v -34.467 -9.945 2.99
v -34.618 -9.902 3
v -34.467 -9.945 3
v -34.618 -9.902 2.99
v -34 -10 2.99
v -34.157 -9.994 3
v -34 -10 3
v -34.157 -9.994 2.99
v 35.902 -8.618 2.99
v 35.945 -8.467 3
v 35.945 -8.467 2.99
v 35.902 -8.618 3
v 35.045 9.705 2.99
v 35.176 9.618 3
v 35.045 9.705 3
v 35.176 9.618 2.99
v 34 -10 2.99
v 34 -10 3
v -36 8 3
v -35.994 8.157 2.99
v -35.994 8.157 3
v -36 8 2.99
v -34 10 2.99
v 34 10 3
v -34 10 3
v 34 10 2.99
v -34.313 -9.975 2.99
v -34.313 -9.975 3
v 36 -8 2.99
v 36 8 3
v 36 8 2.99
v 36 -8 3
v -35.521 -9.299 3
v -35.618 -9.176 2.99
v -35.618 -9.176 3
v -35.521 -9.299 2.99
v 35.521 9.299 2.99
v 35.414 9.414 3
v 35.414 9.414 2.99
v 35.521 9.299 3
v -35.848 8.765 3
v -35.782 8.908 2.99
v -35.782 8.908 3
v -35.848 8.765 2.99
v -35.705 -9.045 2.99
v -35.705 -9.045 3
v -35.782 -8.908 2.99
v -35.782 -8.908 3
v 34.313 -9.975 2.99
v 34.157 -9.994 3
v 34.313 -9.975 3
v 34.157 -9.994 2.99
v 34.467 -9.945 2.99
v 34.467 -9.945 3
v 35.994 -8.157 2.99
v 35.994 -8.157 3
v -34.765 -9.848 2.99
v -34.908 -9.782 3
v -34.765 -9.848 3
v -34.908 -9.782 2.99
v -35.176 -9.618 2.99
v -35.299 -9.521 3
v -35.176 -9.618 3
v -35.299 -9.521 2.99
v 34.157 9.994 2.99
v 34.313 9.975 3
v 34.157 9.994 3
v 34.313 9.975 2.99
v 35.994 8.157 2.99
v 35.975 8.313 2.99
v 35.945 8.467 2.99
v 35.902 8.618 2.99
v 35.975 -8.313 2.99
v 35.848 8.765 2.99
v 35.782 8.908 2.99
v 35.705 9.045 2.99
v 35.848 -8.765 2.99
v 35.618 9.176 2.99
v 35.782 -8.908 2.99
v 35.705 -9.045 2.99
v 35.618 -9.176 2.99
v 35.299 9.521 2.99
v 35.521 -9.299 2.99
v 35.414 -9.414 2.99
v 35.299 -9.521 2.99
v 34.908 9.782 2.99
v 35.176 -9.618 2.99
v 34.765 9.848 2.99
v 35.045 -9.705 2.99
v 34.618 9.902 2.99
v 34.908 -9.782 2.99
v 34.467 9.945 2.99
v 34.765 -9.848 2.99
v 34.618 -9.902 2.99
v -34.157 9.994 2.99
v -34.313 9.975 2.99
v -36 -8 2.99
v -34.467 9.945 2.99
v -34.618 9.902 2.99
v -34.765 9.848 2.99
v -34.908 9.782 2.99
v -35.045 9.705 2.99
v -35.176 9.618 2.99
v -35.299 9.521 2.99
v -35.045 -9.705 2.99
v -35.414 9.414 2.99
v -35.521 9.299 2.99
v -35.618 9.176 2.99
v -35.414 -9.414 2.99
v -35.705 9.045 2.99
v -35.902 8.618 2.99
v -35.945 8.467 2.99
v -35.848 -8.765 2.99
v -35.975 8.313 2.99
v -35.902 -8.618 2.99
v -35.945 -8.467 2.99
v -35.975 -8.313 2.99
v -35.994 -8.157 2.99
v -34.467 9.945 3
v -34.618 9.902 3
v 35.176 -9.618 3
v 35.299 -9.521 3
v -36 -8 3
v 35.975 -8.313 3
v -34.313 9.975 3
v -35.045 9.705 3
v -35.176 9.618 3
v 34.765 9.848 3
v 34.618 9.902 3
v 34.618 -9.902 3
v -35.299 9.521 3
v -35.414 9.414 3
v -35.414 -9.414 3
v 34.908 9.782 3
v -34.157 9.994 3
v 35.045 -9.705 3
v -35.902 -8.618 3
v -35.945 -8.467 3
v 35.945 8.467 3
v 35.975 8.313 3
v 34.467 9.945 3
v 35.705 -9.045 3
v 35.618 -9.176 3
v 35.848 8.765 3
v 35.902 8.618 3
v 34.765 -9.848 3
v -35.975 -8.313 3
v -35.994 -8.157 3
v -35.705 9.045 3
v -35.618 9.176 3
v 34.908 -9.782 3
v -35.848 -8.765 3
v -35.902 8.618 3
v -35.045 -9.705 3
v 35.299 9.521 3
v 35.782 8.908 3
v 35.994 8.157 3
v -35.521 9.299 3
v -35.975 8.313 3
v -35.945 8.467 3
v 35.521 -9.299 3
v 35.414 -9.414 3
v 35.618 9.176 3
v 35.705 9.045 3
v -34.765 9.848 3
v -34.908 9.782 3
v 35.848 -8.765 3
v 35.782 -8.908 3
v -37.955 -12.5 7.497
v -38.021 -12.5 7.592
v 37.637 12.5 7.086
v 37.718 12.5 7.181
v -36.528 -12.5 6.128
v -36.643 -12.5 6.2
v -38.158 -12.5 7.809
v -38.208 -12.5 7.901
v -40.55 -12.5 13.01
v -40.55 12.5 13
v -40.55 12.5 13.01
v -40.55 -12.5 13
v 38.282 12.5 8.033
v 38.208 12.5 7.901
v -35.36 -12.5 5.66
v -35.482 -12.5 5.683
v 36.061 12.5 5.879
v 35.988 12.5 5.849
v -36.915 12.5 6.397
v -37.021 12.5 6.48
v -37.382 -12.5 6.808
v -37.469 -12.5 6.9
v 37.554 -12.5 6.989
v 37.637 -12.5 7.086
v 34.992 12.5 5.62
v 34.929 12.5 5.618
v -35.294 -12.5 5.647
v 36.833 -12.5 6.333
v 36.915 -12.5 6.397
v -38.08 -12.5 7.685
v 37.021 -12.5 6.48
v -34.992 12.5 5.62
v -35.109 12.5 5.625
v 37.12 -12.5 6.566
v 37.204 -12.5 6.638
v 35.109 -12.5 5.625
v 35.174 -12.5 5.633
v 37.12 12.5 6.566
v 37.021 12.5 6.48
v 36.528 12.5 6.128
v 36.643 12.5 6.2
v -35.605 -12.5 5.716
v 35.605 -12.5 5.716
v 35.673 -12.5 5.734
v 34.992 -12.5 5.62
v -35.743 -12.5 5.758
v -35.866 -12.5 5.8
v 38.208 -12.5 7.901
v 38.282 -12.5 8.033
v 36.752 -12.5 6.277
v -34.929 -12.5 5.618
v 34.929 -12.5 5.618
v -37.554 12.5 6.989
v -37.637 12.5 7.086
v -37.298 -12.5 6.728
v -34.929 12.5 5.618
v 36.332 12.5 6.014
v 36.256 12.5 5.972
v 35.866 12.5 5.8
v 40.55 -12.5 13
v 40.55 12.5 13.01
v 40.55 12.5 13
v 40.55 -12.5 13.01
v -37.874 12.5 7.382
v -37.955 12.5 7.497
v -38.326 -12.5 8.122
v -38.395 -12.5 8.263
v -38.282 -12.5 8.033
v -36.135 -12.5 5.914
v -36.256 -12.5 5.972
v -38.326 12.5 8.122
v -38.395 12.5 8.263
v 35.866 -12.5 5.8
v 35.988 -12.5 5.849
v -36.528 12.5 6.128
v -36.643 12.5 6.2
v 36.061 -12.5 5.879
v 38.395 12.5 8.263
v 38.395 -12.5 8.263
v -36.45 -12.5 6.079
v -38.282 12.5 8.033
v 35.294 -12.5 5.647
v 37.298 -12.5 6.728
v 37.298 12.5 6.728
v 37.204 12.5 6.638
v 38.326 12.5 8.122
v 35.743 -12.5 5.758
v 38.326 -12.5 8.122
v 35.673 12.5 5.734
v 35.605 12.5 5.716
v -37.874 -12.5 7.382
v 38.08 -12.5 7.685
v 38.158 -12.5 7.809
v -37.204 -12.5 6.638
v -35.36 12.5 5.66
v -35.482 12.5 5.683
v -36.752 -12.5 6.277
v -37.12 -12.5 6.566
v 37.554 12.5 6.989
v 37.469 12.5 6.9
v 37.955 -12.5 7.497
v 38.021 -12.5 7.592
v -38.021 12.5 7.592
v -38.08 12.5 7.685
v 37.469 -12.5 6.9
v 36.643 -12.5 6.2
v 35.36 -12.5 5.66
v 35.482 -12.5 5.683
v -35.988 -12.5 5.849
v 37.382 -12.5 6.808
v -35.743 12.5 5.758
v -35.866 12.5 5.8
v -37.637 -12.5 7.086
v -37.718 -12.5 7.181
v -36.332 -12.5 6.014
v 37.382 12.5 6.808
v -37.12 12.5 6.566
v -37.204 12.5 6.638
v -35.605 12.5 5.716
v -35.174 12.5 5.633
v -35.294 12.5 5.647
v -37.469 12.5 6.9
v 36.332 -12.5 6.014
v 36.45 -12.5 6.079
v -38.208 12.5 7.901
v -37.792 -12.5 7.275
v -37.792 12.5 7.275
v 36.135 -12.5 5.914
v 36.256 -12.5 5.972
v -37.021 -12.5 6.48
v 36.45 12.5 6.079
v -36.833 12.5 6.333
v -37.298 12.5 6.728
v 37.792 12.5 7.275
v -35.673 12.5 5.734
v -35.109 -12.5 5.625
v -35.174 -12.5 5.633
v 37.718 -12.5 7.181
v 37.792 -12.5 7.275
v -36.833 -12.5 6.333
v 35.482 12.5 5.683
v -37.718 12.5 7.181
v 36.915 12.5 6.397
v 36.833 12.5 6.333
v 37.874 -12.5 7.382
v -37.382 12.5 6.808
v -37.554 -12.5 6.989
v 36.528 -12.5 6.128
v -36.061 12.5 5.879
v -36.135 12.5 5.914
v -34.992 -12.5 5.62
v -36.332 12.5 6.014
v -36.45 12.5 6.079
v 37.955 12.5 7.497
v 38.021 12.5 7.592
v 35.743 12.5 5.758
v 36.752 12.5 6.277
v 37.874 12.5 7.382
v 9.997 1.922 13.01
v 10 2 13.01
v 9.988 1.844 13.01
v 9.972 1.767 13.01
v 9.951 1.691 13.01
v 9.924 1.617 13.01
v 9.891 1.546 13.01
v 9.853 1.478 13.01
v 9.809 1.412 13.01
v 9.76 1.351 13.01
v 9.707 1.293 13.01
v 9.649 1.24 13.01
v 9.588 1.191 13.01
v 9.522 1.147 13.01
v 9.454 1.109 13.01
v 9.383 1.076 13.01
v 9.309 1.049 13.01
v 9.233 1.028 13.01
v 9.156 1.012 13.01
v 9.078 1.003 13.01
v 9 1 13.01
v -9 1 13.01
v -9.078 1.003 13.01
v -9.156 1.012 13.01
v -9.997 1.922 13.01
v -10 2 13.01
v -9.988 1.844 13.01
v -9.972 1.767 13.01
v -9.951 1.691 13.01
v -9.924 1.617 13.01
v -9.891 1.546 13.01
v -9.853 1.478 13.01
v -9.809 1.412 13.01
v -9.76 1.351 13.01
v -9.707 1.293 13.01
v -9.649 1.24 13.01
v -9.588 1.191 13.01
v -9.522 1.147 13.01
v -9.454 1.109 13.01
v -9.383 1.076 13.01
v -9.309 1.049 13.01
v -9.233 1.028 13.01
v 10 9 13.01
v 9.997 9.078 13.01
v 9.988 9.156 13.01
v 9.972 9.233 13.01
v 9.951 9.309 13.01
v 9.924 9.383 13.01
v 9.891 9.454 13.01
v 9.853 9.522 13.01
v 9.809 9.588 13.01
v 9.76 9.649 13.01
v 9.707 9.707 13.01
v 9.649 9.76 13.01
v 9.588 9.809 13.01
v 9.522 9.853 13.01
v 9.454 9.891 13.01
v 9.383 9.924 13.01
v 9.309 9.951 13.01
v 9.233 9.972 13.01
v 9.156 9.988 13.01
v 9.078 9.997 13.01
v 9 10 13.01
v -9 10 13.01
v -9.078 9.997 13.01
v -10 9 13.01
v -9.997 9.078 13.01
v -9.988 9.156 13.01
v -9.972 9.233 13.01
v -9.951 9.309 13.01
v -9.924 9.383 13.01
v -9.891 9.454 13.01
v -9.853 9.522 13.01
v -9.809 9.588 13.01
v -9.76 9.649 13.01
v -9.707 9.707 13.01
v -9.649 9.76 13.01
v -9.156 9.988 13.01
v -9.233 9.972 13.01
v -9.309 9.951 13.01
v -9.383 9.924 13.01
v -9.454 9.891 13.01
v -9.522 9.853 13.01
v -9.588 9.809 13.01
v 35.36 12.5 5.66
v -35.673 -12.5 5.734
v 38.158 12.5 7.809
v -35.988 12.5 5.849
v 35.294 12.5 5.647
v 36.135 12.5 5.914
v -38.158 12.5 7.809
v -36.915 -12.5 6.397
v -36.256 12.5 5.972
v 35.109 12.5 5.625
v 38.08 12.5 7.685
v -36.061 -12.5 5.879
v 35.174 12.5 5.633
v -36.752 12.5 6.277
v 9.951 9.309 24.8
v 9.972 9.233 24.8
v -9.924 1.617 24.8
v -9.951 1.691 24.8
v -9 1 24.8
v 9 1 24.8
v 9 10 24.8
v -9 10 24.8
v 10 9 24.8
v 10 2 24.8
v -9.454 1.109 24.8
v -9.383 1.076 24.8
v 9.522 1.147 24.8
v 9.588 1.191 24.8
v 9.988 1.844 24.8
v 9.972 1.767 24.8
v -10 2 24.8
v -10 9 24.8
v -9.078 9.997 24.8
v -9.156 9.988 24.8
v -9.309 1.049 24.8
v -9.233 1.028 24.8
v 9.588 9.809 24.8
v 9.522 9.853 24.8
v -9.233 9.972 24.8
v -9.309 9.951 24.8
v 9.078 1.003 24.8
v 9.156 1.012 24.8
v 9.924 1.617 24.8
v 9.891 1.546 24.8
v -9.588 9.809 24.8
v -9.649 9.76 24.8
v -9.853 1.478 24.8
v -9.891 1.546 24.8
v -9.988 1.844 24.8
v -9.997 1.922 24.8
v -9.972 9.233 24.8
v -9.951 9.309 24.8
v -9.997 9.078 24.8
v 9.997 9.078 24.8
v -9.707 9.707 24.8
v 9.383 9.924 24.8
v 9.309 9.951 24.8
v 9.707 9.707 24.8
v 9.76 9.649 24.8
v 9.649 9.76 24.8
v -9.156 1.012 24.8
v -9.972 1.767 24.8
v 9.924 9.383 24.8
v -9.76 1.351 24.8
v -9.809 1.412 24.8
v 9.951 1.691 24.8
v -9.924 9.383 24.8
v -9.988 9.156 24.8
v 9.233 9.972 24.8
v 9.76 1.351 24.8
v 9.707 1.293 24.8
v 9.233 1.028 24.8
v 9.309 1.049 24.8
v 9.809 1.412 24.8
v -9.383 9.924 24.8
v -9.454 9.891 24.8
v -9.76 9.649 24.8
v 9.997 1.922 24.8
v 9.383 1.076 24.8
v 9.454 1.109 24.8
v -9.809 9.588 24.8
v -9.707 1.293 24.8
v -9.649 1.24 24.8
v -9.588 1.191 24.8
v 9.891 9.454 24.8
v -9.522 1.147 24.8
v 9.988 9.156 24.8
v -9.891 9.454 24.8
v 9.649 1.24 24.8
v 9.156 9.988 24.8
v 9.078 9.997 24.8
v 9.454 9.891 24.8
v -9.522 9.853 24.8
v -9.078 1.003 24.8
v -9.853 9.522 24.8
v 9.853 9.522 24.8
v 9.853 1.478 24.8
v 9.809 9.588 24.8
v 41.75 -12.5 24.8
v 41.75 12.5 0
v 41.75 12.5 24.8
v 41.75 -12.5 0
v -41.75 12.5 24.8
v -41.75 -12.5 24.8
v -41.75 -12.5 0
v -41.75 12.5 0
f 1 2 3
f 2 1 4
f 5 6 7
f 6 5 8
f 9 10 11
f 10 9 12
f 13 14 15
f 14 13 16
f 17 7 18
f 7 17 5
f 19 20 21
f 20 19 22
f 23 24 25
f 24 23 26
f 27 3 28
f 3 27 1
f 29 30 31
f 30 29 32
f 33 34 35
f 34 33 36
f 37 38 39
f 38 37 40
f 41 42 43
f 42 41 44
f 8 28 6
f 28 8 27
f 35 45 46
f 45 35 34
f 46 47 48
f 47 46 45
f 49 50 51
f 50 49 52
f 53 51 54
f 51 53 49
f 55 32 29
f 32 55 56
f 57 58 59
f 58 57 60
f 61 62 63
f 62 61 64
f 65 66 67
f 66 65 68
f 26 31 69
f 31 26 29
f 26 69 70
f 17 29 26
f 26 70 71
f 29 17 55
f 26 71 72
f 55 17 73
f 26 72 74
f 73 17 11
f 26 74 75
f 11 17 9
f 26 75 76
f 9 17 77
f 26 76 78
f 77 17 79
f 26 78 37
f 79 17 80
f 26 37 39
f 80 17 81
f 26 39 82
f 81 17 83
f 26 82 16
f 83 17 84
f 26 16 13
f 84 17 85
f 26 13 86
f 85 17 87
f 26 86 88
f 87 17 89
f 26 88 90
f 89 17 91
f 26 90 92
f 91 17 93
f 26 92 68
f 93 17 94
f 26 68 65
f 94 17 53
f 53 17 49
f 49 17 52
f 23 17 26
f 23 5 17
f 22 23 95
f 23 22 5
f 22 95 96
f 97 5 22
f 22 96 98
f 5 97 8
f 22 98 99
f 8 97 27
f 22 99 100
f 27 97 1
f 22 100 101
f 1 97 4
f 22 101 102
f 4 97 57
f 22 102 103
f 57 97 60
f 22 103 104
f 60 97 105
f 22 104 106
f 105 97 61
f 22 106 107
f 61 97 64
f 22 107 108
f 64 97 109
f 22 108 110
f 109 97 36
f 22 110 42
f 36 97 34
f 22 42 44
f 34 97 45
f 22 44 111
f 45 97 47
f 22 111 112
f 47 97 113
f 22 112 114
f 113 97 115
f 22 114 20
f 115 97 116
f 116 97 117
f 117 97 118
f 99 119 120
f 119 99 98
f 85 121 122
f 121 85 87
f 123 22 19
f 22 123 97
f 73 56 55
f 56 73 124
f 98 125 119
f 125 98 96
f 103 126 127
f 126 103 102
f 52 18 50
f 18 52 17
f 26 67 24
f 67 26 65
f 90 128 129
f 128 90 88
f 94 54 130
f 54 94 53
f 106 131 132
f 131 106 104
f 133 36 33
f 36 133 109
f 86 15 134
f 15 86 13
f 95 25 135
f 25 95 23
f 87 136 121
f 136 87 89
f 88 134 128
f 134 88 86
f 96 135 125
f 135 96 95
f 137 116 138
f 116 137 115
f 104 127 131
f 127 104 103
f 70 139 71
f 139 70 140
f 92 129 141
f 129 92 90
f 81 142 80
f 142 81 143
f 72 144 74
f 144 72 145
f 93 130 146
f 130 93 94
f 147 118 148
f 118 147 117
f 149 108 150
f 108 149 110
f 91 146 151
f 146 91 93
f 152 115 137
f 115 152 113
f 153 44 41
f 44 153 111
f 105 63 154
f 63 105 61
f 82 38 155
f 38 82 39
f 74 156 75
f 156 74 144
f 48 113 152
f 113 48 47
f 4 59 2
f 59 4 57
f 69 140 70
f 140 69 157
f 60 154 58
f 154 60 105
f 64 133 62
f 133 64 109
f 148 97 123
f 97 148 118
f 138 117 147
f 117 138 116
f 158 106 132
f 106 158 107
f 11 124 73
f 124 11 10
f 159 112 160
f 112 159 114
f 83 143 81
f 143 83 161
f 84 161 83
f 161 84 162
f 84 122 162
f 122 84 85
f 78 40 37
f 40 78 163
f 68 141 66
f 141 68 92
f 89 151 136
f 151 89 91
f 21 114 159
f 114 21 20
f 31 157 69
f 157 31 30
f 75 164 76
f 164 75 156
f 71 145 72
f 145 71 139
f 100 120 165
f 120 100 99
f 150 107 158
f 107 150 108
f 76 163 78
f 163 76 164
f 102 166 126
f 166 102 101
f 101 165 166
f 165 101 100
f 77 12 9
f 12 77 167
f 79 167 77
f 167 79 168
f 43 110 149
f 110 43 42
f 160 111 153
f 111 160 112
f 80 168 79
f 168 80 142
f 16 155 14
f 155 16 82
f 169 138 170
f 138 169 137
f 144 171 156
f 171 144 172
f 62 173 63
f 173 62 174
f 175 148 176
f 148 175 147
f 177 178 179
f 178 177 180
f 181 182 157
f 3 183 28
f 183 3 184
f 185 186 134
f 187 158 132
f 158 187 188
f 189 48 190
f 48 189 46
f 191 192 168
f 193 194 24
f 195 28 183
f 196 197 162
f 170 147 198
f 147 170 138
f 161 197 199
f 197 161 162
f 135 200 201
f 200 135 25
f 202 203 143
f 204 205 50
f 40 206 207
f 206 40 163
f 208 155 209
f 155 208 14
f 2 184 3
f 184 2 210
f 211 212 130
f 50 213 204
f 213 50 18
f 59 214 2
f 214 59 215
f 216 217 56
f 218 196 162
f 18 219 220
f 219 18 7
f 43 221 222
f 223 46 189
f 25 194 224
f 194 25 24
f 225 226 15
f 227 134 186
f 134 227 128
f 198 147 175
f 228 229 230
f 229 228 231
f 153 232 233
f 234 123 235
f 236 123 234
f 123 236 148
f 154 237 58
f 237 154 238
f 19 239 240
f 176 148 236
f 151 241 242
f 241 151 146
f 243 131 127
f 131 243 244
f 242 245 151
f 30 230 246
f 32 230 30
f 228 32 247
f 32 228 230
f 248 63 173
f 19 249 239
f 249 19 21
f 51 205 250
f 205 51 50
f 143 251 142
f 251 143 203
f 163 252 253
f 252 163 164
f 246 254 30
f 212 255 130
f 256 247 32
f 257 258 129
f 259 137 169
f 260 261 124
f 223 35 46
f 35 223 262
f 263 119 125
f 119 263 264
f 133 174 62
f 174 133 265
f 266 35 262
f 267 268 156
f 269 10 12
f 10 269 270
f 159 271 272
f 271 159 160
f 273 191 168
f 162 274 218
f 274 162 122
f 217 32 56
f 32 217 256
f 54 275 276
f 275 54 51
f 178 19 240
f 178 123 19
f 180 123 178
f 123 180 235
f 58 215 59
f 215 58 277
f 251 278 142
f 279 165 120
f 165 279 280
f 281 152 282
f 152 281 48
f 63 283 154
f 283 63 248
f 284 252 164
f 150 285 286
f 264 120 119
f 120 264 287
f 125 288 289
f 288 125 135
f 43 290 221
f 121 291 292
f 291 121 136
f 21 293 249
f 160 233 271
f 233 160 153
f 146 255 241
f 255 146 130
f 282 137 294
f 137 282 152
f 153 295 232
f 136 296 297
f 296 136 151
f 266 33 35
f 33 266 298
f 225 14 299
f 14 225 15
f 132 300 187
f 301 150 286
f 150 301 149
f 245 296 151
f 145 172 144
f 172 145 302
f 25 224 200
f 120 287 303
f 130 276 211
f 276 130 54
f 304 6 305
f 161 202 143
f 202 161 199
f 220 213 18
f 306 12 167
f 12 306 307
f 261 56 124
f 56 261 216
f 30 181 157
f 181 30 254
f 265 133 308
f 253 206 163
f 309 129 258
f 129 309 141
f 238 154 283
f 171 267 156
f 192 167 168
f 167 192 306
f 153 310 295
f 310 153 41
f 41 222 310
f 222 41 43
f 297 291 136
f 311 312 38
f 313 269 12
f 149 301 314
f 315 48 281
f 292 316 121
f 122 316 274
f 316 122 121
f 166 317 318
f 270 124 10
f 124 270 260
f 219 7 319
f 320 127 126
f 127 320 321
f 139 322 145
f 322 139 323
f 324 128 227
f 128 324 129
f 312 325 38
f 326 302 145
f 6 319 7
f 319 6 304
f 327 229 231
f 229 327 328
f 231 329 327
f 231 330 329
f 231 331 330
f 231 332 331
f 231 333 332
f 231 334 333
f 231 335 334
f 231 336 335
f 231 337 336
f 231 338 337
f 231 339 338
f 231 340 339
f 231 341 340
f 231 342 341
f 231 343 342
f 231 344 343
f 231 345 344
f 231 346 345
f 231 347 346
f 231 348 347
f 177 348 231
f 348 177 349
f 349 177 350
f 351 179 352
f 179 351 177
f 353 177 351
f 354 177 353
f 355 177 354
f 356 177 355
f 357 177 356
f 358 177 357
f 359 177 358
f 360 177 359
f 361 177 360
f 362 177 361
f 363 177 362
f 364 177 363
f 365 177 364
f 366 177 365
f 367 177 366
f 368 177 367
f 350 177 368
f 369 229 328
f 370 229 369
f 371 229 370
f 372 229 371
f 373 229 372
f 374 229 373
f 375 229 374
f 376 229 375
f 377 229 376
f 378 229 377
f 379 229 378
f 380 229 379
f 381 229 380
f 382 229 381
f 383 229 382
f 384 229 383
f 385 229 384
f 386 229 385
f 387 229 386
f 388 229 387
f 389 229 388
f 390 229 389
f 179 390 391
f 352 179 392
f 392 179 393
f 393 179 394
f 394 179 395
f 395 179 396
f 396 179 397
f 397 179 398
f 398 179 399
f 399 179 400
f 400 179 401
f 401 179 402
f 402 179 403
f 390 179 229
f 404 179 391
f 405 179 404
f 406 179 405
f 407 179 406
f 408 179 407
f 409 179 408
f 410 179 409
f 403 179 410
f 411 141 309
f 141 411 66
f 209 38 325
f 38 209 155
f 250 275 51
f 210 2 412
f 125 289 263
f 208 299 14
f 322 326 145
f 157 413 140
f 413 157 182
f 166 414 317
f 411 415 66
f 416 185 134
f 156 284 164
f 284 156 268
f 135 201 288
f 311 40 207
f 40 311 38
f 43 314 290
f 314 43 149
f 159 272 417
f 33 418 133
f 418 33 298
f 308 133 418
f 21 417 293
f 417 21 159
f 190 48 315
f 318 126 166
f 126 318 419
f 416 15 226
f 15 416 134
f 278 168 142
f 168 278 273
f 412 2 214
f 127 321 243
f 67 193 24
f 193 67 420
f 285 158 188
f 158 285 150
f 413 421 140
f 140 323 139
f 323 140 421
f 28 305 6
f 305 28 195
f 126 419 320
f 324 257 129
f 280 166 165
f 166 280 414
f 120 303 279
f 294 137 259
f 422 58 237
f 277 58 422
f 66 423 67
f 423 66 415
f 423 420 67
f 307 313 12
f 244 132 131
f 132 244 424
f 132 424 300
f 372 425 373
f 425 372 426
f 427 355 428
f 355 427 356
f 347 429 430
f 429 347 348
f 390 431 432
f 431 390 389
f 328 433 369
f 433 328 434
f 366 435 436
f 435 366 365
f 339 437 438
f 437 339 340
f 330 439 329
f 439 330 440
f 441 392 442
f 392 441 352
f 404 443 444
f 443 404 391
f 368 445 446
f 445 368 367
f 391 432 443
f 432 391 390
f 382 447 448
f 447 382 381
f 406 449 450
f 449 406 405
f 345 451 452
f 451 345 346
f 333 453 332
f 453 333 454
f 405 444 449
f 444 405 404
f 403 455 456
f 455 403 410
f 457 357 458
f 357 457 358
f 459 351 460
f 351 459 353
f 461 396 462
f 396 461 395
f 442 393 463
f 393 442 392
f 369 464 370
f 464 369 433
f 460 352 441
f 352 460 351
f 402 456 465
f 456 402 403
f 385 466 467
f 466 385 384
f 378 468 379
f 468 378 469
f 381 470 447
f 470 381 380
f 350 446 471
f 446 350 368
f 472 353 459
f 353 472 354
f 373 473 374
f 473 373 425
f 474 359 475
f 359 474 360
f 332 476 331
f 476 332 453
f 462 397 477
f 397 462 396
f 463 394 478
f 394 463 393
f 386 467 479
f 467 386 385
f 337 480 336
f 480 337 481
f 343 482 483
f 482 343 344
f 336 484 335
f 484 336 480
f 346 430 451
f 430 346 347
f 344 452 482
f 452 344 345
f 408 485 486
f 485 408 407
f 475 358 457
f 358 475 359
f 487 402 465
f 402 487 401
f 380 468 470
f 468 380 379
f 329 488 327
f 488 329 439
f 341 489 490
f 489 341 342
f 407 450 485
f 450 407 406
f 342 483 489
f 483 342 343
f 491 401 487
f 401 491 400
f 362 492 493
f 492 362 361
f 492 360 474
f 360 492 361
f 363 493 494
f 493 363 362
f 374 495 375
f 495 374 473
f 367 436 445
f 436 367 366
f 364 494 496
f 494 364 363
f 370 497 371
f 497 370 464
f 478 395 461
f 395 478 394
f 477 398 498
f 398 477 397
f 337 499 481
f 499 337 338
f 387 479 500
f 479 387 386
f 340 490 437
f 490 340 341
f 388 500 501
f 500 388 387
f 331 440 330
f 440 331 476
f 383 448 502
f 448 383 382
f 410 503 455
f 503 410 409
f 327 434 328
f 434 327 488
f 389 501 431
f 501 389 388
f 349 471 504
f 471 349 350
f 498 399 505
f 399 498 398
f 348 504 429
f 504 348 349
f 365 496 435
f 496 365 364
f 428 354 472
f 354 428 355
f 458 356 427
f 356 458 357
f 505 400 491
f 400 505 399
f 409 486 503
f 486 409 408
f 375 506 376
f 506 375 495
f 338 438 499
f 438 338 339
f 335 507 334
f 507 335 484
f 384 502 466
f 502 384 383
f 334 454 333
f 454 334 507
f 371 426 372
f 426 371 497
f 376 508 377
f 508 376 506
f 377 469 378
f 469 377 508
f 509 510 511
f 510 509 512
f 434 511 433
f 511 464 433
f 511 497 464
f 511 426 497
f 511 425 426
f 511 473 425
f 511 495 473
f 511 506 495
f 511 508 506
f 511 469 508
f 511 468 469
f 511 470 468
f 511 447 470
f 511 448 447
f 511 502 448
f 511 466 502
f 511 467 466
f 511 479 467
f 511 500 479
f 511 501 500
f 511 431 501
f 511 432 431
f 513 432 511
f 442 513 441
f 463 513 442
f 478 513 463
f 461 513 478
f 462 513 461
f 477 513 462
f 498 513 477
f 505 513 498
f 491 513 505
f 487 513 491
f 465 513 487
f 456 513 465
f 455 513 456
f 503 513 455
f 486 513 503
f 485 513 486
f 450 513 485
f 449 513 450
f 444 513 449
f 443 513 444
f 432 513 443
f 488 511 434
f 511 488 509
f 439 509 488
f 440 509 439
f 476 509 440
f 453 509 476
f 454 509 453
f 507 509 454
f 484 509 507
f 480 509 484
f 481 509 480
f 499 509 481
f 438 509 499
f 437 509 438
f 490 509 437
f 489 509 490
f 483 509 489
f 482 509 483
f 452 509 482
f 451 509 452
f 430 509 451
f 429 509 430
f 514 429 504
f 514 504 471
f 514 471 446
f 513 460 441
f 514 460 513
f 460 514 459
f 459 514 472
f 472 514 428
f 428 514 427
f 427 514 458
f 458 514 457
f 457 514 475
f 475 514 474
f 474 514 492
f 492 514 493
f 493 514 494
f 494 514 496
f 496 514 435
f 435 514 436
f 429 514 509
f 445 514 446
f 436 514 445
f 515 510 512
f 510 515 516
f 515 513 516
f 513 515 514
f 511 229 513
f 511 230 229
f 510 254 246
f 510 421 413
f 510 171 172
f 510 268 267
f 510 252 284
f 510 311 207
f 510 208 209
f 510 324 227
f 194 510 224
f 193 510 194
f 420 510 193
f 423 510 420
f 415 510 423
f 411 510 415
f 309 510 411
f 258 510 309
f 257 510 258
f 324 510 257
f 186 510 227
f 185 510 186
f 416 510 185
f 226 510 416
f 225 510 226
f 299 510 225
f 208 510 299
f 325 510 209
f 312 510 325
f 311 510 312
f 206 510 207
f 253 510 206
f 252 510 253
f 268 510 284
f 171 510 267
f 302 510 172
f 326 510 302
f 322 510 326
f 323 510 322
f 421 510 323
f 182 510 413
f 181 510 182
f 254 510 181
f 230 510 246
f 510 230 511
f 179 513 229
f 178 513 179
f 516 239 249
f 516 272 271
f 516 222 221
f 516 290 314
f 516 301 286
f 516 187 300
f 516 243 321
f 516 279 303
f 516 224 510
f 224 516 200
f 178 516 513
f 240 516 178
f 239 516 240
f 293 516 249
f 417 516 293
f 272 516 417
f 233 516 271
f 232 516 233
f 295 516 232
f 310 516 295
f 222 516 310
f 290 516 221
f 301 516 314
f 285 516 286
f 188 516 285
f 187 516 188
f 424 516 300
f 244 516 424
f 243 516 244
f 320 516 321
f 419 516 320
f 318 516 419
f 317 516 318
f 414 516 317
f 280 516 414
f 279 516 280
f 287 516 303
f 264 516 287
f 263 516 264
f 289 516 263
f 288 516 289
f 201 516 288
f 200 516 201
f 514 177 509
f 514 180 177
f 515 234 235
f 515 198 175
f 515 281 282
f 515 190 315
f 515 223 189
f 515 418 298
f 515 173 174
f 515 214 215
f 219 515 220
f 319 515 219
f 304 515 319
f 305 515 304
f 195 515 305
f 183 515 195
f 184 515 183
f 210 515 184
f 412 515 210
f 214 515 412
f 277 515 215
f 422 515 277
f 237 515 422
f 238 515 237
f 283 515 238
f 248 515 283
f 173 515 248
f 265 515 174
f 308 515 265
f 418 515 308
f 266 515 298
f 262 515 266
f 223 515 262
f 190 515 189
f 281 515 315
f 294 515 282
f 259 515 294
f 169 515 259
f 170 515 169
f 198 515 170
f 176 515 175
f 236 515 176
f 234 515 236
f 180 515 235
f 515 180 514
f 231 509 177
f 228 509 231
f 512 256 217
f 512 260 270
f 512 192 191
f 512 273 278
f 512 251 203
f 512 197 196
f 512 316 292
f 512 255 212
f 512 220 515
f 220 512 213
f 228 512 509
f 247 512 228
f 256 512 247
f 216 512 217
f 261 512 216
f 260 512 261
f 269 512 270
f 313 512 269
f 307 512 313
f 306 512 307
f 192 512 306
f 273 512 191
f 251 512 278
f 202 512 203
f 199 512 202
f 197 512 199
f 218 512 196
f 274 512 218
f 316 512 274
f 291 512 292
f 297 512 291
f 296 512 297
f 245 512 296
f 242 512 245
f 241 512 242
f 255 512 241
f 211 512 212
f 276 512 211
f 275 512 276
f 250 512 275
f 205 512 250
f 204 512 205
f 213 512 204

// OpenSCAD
// file: bambu-x1c.scad
// Bambu Lab X1 Carbon — build volume and dimension reporting

BED_X = 256;
BED_Y = 256;
BED_Z = 256;

// Assert a part fits within the build volume.
// Call with the bounding box dimensions of your part.
module assert_fits(x, y, z) {
  assert(x <= BED_X, str("Part X (", x, "mm) exceeds bed X (", BED_X, "mm)"));
  assert(y <= BED_Y, str("Part Y (", y, "mm) exceeds bed Y (", BED_Y, "mm)"));
  assert(z <= BED_Z, str("Part Z (", z, "mm) exceeds bed Z (", BED_Z, "mm)"));
}

// Echo dimensions in a parseable format for the Node.js pipeline.
// Call at the end of your .scad file with the part's bounding box.
module report_dimensions(x, y, z, label="part") {
  assert_fits(x, y, z);
  echo(str("DIMENSION:", label, ":x=", x));
  echo(str("DIMENSION:", label, ":y=", y));
  echo(str("DIMENSION:", label, ":z=", z));
}
// main file
// =============================================================================
// Ledge-Slot Test Print — Cross-section of caliper bin transition zone
// =============================================================================
// Captures z=62.2 to z=84.0 of the parent caliper-test bin:
//   - Finger relief 45-degree chamfer (10mm tall, from z=62.2 to z=72.2)
//   - Transition ledge at z=72.2 (where display cavity narrows to beam slot)
//   - Beam slot (20x9mm, from z=72.2 to z=84.0)
// Plus a 3mm solid base plate for stable printing.
//
// Print orientation: flat on the 3mm base plate. No supports needed.

include <gridfinity-spec.scad>
include <bambu-x1c.scad>

$fn = 80;

// =============================================================================
// PARAMETERS (from parent caliper-test.scad)
// =============================================================================

// Grid sizing (parent bin is 2x1)
outer_x = gf_bin_width(2);             // 83.5
outer_y = gf_bin_width(1);             // 41.5
wall = GF_WALL_THICKNESS_THICK;        // 1.2
inner_x = outer_x - 2 * wall;          // 81.1
inner_y = outer_y - 2 * wall;          // 39.1
floor_z = GF_INTERNAL_FLOOR_ELEV;      // 7.2

// Caliper clearance
caliper_clearance = 2.0;

// Display body cavity
display_body_width = 68;
display_body_thickness = 16;
display_body_length = 63;

display_cavity_x = display_body_width + 2 * caliper_clearance;      // 72
display_cavity_y = display_body_thickness + 2 * caliper_clearance;   // 20
display_cavity_z = display_body_length + caliper_clearance;          // 65

// Beam slot
beam_width = 16;
beam_thickness = 5;

beam_slot_x = beam_width + 2 * caliper_clearance;      // 20
beam_slot_y = beam_thickness + 2 * caliper_clearance;   // 9
beam_slot_z = 11.8;  // from parent: usable_depth - display_cavity_z
beam_slot_y_offset = (display_body_thickness - beam_thickness) / 2;  // 5.5

// Finger relief
finger_relief_height = 10;
finger_relief_setback = 10;

// Capped relief dimensions (same as parent)
relief_x = min(display_cavity_x + 2 * finger_relief_setback, inner_x);  // 81.1
relief_y = min(display_cavity_y + 2 * finger_relief_setback, inner_y);  // 39.1

// =============================================================================
// TEST PIECE PARAMETERS
// =============================================================================

section_z_start = 62.2;   // bottom of finger relief chamfer
section_z_end   = 84.0;   // top of bin body
section_height  = section_z_end - section_z_start;  // 21.8

base_plate_z = 3.0;       // solid base for stable printing
test_y = 25.0;            // trimmed Y extent
test_z = base_plate_z + section_height;  // 24.8

// Corner radius for display cavity
r_cavity = 2.0;
r_relief = 3.0;
r_beam = 1.0;

// Key parent-space Z coordinates
ledge_z = floor_z + display_cavity_z;  // 72.2
chamfer_bottom_z = ledge_z - finger_relief_height;  // 62.2

// Offset to map parent Z to test piece Z
z_offset = base_plate_z - section_z_start;  // 3.0 - 62.2 = -59.2

// =============================================================================
// HELPER: Rounded rectangle centered at origin, bottom at Z=0
// =============================================================================
module rounded_rect(sx, sy, h, r) {
    cr = min(r, min(sx, sy) / 2);
    hull() {
        for (dx = [-1, 1])
            for (dy = [-1, 1])
                translate([dx * (sx/2 - cr), dy * (sy/2 - cr), 0])
                    cylinder(r=cr, h=h);
    }
}

// =============================================================================
// TEST PIECE
// =============================================================================
// Build a solid block at test piece dimensions, then subtract the pocket
// geometry. The pocket consists of:
//   1. Display cavity cross-section at the base (72x20mm) — visible on bottom
//   2. Finger relief chamfer widening from 72x20 to 81.1x39.1 over 10mm
//   3. Beam slot (20x9mm) from the ledge to the top
// The transition ledge is the solid material between the wide relief opening
// and the narrow beam slot.

difference() {
    // Outer solid block — full X width, trimmed Y, test piece height
    translate([0, 0, test_z / 2])
        cube([outer_x, test_y, test_z], center=true);

    // All pocket cuts, translated from parent Z to test piece Z
    translate([0, 0, z_offset]) {

        // A. Display body cavity from section start to chamfer bottom
        //    This is the constant-width cavity visible at the base face
        translate([0, 0, section_z_start - 0.01])
            rounded_rect(display_cavity_x, display_cavity_y,
                         chamfer_bottom_z - section_z_start + 0.02, r_cavity);

        // B. Finger relief chamfer (parent z=62.2 to z=72.2)
        //    Hull from cavity size at bottom to relief size at top
        hull() {
            translate([0, 0, chamfer_bottom_z])
                rounded_rect(display_cavity_x, display_cavity_y, 0.01, r_cavity);
            translate([0, 0, ledge_z])
                rounded_rect(relief_x, relief_y, 0.01, r_relief);
        }

        // C. Beam slot from ledge to top (parent z=72.2 to z=84.0)
        //    Offset in +Y matching parent design
        translate([0, beam_slot_y_offset, ledge_z - 0.01])
            rounded_rect(beam_slot_x, beam_slot_y,
                         beam_slot_z + 0.02, r_beam);
    }
}

// =============================================================================
// DIMENSION REPORTING
// =============================================================================

report_dimensions(outer_x, test_y, test_z, "test_piece");
report_dimensions(beam_slot_x, beam_slot_y, beam_slot_z, "beam_slot");
